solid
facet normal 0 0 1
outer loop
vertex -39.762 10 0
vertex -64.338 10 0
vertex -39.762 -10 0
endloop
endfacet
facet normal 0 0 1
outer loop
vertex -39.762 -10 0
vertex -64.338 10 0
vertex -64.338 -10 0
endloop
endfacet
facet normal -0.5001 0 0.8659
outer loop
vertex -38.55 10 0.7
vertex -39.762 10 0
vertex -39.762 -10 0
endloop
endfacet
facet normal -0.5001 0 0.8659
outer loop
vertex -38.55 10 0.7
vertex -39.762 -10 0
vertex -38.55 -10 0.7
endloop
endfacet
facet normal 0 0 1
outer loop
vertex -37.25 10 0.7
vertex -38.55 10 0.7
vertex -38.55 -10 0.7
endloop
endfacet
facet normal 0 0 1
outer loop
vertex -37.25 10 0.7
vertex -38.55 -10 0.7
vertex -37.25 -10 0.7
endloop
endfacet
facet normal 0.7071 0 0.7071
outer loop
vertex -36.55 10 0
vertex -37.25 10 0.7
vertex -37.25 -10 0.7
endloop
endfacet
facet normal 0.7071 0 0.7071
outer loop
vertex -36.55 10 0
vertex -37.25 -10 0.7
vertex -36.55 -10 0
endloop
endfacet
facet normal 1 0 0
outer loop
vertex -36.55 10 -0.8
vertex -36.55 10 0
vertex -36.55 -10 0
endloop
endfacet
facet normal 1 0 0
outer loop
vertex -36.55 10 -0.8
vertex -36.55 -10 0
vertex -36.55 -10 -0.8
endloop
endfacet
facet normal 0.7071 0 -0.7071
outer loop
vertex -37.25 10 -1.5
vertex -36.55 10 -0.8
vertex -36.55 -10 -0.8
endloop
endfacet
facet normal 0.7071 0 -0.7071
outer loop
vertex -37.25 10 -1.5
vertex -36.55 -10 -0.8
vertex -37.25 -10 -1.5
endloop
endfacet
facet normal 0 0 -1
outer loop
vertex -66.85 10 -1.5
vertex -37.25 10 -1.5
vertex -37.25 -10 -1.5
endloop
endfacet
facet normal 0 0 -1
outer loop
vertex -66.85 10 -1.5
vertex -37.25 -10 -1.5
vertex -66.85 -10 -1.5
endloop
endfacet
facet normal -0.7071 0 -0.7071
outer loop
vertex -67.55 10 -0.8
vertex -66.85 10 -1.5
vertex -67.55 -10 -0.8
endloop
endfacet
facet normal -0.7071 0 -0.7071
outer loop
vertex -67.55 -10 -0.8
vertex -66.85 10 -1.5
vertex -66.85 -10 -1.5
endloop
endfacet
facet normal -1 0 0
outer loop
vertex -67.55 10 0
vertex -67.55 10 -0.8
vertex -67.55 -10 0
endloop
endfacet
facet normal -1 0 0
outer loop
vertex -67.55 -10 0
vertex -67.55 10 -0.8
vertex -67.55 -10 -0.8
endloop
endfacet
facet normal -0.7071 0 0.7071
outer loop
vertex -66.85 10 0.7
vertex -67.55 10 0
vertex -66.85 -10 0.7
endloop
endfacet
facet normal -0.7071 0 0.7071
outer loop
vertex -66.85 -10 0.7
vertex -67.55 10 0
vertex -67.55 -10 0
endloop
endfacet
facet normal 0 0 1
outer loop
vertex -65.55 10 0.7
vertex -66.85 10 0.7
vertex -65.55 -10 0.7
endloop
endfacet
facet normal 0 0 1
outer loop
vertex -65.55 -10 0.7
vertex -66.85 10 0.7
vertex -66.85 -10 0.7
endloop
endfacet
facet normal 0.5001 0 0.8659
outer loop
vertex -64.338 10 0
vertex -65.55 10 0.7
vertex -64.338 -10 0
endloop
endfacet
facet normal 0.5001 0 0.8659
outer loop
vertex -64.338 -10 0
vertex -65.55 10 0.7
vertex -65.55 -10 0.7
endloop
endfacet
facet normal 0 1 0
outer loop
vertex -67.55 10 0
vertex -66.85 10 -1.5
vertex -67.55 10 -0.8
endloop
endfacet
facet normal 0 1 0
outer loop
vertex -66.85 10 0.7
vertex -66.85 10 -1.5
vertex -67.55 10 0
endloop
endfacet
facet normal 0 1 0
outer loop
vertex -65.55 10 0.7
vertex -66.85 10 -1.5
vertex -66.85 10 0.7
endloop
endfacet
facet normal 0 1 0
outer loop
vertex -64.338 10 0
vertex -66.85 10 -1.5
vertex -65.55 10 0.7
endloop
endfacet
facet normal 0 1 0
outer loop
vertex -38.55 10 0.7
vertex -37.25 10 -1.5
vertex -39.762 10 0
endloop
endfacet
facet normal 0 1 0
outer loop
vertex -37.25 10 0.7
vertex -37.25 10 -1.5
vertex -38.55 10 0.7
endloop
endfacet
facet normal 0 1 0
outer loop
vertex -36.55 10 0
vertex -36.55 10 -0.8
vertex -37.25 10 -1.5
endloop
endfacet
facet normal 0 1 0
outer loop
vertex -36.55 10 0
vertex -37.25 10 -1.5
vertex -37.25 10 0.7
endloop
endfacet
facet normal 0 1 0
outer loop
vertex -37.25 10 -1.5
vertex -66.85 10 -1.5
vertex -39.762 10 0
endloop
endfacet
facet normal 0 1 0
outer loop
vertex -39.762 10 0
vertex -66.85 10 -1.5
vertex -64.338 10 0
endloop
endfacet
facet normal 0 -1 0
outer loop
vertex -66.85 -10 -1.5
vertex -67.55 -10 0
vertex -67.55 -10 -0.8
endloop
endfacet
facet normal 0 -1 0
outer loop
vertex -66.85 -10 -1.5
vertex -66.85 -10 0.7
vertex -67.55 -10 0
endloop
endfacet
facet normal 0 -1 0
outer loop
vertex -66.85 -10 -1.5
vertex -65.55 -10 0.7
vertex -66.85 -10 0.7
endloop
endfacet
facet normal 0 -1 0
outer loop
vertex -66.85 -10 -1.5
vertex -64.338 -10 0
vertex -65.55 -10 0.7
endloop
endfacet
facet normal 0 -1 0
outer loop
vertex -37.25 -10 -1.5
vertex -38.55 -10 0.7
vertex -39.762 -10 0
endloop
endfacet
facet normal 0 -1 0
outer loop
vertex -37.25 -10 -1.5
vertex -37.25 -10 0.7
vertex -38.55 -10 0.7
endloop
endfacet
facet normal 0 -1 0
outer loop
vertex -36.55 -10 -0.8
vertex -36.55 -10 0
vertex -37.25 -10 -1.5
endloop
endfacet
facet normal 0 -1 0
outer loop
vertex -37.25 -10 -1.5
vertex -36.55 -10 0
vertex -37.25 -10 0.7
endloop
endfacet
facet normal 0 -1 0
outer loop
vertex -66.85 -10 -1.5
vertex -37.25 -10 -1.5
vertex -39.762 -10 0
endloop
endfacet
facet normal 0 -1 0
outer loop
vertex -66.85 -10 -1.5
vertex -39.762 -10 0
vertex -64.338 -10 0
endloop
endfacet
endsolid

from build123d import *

# Parameters (mm, degrees)
PAD006_DEPTH = 10


with BuildPart() as part:
    # Sketch019 → Pad006 (new body, symmetric)
    with BuildSketch(Plane.XZ):
        Polygon((-39.762436, 0), (-38.55, 0.7), (-37.25, 0.7), (-36.55, 0), (-36.55, -0.8), (-37.25, -1.5), (-66.85, -1.5), (-67.55, -0.8), (-67.55, 0), (-66.85, 0.7), (-65.55, 0.7), (-64.337564, 0), align=None)
    extrude(amount=PAD006_DEPTH, both=True)


solid = part.part
